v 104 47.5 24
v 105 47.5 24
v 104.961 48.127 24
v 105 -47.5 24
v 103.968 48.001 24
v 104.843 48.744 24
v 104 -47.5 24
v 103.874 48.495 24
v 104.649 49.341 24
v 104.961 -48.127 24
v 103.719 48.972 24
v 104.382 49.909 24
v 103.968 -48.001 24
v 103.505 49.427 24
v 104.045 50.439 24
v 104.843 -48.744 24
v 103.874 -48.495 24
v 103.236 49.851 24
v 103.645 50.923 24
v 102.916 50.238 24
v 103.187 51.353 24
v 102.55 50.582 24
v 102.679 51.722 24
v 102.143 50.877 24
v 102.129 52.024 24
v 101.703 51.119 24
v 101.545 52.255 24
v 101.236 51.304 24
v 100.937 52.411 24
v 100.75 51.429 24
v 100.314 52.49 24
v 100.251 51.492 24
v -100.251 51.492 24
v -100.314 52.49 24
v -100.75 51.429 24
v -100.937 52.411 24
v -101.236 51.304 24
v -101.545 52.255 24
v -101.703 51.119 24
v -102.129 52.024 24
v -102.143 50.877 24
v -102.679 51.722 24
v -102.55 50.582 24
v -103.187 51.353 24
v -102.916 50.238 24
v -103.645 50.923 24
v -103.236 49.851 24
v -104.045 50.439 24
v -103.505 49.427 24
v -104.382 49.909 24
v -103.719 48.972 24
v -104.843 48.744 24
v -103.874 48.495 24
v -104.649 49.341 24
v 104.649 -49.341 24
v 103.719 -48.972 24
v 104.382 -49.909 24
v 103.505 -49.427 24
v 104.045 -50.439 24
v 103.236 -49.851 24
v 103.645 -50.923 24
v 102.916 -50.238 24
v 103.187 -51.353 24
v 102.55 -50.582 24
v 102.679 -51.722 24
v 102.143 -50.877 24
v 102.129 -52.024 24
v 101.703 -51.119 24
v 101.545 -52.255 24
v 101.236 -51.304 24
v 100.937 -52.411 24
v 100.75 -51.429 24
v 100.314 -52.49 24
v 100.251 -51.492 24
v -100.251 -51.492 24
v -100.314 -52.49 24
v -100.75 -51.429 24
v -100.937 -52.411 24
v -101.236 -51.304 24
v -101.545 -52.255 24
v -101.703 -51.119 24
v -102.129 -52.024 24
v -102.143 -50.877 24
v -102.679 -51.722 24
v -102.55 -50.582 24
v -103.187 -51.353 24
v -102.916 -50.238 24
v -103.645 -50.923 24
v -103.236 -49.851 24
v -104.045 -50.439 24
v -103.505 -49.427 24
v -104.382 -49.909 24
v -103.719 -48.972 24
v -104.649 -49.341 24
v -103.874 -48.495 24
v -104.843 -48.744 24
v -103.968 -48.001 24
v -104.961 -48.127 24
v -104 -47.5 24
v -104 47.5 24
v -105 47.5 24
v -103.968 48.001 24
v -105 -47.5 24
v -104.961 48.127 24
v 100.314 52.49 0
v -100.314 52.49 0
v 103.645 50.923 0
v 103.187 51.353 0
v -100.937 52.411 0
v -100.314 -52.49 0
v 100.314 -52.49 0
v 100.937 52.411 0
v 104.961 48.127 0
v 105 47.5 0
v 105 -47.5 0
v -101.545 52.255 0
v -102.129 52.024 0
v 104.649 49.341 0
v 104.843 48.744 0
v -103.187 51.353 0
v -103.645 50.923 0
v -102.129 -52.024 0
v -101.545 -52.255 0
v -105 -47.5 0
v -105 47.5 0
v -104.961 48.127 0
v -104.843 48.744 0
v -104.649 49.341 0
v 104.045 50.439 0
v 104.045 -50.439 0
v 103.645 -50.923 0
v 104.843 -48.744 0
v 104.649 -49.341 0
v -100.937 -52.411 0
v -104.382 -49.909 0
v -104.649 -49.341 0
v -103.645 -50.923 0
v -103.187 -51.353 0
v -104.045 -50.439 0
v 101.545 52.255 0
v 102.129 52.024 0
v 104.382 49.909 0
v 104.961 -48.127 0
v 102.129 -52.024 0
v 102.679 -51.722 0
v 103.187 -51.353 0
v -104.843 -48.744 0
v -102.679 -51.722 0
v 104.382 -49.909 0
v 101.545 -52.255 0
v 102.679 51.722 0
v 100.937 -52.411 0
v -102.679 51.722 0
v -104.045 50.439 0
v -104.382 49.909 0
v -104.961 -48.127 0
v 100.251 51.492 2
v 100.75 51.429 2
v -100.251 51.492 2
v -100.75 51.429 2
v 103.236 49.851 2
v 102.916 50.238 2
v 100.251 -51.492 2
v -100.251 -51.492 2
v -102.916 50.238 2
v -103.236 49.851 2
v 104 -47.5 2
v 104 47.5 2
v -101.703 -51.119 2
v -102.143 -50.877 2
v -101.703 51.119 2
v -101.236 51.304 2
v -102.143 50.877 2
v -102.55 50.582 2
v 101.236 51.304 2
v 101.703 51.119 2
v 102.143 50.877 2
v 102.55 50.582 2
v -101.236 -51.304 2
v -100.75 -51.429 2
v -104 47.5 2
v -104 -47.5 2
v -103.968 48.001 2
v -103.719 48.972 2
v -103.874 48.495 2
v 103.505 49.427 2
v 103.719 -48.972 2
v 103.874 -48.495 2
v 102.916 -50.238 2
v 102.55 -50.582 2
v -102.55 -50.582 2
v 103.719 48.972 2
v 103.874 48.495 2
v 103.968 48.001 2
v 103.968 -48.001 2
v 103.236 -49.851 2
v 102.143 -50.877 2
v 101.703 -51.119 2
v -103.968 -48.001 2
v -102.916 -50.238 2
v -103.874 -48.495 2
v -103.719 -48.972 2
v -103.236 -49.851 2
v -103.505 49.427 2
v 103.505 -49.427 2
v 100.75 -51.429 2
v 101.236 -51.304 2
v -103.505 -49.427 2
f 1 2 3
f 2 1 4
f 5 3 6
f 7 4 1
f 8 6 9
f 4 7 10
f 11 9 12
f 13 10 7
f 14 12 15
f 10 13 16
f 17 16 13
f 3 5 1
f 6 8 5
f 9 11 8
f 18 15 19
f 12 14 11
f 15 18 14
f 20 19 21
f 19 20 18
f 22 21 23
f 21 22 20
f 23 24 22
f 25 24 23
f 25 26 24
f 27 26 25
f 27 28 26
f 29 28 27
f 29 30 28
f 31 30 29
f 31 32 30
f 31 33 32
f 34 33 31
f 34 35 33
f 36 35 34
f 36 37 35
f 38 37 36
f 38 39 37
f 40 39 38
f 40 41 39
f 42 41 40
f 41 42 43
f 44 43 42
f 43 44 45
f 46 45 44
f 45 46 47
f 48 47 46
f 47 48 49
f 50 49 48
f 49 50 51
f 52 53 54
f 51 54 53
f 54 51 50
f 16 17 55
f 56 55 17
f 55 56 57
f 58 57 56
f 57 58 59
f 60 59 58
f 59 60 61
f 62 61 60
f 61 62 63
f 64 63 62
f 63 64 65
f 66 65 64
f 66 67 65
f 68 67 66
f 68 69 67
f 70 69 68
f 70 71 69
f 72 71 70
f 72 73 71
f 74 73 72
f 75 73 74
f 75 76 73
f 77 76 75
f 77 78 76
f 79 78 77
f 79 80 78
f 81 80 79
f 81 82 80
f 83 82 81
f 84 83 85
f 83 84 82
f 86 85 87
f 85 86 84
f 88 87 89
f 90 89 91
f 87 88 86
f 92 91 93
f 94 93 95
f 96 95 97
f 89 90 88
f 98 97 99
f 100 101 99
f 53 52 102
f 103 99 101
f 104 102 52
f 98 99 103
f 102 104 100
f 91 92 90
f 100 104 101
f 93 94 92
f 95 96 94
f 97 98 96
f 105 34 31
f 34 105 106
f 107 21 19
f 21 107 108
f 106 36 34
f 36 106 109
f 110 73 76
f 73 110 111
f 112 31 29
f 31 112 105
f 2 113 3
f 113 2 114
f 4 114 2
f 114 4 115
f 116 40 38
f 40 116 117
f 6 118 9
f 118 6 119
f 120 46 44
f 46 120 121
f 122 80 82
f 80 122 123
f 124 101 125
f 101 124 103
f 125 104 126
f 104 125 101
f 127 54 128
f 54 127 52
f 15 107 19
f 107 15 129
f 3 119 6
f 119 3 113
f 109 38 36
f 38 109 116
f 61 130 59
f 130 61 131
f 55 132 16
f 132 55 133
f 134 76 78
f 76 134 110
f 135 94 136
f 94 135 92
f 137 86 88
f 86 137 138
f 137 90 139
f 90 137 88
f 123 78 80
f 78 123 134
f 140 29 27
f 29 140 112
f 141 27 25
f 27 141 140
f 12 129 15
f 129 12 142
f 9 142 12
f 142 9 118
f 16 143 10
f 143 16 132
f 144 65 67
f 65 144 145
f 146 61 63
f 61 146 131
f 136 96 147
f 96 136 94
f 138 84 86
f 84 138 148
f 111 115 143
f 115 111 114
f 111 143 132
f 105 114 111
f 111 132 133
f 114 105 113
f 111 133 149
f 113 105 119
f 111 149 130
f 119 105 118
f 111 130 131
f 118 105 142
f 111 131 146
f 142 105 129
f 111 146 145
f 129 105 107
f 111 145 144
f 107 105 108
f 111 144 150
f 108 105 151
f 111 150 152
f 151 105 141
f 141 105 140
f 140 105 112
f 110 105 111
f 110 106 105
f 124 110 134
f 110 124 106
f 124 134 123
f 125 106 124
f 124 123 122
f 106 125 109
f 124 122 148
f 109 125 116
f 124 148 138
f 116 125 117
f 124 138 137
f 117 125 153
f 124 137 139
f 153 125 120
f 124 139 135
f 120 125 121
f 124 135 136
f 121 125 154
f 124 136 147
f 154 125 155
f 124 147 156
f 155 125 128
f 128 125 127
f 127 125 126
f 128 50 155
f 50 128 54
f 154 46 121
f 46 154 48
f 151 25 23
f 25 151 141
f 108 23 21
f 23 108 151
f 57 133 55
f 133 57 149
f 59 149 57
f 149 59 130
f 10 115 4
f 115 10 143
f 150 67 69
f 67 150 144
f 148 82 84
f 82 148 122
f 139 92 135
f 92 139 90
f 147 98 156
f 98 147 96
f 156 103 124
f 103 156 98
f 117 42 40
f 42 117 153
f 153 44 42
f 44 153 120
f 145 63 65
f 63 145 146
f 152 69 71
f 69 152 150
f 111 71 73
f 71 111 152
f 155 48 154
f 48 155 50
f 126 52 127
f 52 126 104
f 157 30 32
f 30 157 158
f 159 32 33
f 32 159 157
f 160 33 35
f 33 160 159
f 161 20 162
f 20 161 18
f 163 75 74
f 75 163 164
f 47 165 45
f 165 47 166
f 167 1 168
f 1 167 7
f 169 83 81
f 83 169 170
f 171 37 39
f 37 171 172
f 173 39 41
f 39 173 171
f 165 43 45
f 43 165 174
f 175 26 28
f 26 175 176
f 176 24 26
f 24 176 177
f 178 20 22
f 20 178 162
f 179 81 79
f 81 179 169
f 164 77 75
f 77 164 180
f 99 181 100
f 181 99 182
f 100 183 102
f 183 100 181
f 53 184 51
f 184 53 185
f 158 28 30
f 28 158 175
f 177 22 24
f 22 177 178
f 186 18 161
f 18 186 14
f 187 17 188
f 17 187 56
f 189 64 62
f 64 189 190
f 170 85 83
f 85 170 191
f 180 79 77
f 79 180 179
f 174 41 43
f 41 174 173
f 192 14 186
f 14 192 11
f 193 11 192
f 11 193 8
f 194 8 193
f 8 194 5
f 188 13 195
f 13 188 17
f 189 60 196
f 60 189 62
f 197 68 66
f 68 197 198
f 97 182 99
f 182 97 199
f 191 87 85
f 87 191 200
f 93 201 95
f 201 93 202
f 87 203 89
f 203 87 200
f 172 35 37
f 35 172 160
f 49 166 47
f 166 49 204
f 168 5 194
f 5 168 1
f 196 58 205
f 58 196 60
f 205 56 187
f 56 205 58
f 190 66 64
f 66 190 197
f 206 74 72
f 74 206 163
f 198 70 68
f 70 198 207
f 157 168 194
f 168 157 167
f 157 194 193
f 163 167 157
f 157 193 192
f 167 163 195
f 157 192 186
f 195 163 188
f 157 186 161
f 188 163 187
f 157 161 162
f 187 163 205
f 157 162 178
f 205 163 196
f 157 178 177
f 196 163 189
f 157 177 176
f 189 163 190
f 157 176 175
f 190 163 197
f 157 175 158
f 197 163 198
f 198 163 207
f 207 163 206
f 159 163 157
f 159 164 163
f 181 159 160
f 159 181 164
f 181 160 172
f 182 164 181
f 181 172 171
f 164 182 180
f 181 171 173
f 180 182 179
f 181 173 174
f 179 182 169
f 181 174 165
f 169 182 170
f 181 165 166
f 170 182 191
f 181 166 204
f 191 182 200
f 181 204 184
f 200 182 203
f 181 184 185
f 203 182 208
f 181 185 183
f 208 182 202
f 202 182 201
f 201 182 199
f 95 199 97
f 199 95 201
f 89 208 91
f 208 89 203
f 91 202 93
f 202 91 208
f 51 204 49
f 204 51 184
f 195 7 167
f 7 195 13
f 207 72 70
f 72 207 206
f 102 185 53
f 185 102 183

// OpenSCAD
$fn = 50;


difference() {
	union() {
		hull() {
			translate(v = [-100.0000000000, 47.5000000000, 0]) {
				cylinder(h = 24, r = 5);
			}
			translate(v = [100.0000000000, 47.5000000000, 0]) {
				cylinder(h = 24, r = 5);
			}
			translate(v = [-100.0000000000, -47.5000000000, 0]) {
				cylinder(h = 24, r = 5);
			}
			translate(v = [100.0000000000, -47.5000000000, 0]) {
				cylinder(h = 24, r = 5);
			}
		}
	}
	union() {
		translate(v = [0, 0, 2]) {
			hull() {
				translate(v = [-100.0000000000, 47.5000000000, 0]) {
					cylinder(h = 22, r = 4);
				}
				translate(v = [100.0000000000, 47.5000000000, 0]) {
					cylinder(h = 22, r = 4);
				}
				translate(v = [-100.0000000000, -47.5000000000, 0]) {
					cylinder(h = 22, r = 4);
				}
				translate(v = [100.0000000000, -47.5000000000, 0]) {
					cylinder(h = 22, r = 4);
				}
			}
		}
	}
}
